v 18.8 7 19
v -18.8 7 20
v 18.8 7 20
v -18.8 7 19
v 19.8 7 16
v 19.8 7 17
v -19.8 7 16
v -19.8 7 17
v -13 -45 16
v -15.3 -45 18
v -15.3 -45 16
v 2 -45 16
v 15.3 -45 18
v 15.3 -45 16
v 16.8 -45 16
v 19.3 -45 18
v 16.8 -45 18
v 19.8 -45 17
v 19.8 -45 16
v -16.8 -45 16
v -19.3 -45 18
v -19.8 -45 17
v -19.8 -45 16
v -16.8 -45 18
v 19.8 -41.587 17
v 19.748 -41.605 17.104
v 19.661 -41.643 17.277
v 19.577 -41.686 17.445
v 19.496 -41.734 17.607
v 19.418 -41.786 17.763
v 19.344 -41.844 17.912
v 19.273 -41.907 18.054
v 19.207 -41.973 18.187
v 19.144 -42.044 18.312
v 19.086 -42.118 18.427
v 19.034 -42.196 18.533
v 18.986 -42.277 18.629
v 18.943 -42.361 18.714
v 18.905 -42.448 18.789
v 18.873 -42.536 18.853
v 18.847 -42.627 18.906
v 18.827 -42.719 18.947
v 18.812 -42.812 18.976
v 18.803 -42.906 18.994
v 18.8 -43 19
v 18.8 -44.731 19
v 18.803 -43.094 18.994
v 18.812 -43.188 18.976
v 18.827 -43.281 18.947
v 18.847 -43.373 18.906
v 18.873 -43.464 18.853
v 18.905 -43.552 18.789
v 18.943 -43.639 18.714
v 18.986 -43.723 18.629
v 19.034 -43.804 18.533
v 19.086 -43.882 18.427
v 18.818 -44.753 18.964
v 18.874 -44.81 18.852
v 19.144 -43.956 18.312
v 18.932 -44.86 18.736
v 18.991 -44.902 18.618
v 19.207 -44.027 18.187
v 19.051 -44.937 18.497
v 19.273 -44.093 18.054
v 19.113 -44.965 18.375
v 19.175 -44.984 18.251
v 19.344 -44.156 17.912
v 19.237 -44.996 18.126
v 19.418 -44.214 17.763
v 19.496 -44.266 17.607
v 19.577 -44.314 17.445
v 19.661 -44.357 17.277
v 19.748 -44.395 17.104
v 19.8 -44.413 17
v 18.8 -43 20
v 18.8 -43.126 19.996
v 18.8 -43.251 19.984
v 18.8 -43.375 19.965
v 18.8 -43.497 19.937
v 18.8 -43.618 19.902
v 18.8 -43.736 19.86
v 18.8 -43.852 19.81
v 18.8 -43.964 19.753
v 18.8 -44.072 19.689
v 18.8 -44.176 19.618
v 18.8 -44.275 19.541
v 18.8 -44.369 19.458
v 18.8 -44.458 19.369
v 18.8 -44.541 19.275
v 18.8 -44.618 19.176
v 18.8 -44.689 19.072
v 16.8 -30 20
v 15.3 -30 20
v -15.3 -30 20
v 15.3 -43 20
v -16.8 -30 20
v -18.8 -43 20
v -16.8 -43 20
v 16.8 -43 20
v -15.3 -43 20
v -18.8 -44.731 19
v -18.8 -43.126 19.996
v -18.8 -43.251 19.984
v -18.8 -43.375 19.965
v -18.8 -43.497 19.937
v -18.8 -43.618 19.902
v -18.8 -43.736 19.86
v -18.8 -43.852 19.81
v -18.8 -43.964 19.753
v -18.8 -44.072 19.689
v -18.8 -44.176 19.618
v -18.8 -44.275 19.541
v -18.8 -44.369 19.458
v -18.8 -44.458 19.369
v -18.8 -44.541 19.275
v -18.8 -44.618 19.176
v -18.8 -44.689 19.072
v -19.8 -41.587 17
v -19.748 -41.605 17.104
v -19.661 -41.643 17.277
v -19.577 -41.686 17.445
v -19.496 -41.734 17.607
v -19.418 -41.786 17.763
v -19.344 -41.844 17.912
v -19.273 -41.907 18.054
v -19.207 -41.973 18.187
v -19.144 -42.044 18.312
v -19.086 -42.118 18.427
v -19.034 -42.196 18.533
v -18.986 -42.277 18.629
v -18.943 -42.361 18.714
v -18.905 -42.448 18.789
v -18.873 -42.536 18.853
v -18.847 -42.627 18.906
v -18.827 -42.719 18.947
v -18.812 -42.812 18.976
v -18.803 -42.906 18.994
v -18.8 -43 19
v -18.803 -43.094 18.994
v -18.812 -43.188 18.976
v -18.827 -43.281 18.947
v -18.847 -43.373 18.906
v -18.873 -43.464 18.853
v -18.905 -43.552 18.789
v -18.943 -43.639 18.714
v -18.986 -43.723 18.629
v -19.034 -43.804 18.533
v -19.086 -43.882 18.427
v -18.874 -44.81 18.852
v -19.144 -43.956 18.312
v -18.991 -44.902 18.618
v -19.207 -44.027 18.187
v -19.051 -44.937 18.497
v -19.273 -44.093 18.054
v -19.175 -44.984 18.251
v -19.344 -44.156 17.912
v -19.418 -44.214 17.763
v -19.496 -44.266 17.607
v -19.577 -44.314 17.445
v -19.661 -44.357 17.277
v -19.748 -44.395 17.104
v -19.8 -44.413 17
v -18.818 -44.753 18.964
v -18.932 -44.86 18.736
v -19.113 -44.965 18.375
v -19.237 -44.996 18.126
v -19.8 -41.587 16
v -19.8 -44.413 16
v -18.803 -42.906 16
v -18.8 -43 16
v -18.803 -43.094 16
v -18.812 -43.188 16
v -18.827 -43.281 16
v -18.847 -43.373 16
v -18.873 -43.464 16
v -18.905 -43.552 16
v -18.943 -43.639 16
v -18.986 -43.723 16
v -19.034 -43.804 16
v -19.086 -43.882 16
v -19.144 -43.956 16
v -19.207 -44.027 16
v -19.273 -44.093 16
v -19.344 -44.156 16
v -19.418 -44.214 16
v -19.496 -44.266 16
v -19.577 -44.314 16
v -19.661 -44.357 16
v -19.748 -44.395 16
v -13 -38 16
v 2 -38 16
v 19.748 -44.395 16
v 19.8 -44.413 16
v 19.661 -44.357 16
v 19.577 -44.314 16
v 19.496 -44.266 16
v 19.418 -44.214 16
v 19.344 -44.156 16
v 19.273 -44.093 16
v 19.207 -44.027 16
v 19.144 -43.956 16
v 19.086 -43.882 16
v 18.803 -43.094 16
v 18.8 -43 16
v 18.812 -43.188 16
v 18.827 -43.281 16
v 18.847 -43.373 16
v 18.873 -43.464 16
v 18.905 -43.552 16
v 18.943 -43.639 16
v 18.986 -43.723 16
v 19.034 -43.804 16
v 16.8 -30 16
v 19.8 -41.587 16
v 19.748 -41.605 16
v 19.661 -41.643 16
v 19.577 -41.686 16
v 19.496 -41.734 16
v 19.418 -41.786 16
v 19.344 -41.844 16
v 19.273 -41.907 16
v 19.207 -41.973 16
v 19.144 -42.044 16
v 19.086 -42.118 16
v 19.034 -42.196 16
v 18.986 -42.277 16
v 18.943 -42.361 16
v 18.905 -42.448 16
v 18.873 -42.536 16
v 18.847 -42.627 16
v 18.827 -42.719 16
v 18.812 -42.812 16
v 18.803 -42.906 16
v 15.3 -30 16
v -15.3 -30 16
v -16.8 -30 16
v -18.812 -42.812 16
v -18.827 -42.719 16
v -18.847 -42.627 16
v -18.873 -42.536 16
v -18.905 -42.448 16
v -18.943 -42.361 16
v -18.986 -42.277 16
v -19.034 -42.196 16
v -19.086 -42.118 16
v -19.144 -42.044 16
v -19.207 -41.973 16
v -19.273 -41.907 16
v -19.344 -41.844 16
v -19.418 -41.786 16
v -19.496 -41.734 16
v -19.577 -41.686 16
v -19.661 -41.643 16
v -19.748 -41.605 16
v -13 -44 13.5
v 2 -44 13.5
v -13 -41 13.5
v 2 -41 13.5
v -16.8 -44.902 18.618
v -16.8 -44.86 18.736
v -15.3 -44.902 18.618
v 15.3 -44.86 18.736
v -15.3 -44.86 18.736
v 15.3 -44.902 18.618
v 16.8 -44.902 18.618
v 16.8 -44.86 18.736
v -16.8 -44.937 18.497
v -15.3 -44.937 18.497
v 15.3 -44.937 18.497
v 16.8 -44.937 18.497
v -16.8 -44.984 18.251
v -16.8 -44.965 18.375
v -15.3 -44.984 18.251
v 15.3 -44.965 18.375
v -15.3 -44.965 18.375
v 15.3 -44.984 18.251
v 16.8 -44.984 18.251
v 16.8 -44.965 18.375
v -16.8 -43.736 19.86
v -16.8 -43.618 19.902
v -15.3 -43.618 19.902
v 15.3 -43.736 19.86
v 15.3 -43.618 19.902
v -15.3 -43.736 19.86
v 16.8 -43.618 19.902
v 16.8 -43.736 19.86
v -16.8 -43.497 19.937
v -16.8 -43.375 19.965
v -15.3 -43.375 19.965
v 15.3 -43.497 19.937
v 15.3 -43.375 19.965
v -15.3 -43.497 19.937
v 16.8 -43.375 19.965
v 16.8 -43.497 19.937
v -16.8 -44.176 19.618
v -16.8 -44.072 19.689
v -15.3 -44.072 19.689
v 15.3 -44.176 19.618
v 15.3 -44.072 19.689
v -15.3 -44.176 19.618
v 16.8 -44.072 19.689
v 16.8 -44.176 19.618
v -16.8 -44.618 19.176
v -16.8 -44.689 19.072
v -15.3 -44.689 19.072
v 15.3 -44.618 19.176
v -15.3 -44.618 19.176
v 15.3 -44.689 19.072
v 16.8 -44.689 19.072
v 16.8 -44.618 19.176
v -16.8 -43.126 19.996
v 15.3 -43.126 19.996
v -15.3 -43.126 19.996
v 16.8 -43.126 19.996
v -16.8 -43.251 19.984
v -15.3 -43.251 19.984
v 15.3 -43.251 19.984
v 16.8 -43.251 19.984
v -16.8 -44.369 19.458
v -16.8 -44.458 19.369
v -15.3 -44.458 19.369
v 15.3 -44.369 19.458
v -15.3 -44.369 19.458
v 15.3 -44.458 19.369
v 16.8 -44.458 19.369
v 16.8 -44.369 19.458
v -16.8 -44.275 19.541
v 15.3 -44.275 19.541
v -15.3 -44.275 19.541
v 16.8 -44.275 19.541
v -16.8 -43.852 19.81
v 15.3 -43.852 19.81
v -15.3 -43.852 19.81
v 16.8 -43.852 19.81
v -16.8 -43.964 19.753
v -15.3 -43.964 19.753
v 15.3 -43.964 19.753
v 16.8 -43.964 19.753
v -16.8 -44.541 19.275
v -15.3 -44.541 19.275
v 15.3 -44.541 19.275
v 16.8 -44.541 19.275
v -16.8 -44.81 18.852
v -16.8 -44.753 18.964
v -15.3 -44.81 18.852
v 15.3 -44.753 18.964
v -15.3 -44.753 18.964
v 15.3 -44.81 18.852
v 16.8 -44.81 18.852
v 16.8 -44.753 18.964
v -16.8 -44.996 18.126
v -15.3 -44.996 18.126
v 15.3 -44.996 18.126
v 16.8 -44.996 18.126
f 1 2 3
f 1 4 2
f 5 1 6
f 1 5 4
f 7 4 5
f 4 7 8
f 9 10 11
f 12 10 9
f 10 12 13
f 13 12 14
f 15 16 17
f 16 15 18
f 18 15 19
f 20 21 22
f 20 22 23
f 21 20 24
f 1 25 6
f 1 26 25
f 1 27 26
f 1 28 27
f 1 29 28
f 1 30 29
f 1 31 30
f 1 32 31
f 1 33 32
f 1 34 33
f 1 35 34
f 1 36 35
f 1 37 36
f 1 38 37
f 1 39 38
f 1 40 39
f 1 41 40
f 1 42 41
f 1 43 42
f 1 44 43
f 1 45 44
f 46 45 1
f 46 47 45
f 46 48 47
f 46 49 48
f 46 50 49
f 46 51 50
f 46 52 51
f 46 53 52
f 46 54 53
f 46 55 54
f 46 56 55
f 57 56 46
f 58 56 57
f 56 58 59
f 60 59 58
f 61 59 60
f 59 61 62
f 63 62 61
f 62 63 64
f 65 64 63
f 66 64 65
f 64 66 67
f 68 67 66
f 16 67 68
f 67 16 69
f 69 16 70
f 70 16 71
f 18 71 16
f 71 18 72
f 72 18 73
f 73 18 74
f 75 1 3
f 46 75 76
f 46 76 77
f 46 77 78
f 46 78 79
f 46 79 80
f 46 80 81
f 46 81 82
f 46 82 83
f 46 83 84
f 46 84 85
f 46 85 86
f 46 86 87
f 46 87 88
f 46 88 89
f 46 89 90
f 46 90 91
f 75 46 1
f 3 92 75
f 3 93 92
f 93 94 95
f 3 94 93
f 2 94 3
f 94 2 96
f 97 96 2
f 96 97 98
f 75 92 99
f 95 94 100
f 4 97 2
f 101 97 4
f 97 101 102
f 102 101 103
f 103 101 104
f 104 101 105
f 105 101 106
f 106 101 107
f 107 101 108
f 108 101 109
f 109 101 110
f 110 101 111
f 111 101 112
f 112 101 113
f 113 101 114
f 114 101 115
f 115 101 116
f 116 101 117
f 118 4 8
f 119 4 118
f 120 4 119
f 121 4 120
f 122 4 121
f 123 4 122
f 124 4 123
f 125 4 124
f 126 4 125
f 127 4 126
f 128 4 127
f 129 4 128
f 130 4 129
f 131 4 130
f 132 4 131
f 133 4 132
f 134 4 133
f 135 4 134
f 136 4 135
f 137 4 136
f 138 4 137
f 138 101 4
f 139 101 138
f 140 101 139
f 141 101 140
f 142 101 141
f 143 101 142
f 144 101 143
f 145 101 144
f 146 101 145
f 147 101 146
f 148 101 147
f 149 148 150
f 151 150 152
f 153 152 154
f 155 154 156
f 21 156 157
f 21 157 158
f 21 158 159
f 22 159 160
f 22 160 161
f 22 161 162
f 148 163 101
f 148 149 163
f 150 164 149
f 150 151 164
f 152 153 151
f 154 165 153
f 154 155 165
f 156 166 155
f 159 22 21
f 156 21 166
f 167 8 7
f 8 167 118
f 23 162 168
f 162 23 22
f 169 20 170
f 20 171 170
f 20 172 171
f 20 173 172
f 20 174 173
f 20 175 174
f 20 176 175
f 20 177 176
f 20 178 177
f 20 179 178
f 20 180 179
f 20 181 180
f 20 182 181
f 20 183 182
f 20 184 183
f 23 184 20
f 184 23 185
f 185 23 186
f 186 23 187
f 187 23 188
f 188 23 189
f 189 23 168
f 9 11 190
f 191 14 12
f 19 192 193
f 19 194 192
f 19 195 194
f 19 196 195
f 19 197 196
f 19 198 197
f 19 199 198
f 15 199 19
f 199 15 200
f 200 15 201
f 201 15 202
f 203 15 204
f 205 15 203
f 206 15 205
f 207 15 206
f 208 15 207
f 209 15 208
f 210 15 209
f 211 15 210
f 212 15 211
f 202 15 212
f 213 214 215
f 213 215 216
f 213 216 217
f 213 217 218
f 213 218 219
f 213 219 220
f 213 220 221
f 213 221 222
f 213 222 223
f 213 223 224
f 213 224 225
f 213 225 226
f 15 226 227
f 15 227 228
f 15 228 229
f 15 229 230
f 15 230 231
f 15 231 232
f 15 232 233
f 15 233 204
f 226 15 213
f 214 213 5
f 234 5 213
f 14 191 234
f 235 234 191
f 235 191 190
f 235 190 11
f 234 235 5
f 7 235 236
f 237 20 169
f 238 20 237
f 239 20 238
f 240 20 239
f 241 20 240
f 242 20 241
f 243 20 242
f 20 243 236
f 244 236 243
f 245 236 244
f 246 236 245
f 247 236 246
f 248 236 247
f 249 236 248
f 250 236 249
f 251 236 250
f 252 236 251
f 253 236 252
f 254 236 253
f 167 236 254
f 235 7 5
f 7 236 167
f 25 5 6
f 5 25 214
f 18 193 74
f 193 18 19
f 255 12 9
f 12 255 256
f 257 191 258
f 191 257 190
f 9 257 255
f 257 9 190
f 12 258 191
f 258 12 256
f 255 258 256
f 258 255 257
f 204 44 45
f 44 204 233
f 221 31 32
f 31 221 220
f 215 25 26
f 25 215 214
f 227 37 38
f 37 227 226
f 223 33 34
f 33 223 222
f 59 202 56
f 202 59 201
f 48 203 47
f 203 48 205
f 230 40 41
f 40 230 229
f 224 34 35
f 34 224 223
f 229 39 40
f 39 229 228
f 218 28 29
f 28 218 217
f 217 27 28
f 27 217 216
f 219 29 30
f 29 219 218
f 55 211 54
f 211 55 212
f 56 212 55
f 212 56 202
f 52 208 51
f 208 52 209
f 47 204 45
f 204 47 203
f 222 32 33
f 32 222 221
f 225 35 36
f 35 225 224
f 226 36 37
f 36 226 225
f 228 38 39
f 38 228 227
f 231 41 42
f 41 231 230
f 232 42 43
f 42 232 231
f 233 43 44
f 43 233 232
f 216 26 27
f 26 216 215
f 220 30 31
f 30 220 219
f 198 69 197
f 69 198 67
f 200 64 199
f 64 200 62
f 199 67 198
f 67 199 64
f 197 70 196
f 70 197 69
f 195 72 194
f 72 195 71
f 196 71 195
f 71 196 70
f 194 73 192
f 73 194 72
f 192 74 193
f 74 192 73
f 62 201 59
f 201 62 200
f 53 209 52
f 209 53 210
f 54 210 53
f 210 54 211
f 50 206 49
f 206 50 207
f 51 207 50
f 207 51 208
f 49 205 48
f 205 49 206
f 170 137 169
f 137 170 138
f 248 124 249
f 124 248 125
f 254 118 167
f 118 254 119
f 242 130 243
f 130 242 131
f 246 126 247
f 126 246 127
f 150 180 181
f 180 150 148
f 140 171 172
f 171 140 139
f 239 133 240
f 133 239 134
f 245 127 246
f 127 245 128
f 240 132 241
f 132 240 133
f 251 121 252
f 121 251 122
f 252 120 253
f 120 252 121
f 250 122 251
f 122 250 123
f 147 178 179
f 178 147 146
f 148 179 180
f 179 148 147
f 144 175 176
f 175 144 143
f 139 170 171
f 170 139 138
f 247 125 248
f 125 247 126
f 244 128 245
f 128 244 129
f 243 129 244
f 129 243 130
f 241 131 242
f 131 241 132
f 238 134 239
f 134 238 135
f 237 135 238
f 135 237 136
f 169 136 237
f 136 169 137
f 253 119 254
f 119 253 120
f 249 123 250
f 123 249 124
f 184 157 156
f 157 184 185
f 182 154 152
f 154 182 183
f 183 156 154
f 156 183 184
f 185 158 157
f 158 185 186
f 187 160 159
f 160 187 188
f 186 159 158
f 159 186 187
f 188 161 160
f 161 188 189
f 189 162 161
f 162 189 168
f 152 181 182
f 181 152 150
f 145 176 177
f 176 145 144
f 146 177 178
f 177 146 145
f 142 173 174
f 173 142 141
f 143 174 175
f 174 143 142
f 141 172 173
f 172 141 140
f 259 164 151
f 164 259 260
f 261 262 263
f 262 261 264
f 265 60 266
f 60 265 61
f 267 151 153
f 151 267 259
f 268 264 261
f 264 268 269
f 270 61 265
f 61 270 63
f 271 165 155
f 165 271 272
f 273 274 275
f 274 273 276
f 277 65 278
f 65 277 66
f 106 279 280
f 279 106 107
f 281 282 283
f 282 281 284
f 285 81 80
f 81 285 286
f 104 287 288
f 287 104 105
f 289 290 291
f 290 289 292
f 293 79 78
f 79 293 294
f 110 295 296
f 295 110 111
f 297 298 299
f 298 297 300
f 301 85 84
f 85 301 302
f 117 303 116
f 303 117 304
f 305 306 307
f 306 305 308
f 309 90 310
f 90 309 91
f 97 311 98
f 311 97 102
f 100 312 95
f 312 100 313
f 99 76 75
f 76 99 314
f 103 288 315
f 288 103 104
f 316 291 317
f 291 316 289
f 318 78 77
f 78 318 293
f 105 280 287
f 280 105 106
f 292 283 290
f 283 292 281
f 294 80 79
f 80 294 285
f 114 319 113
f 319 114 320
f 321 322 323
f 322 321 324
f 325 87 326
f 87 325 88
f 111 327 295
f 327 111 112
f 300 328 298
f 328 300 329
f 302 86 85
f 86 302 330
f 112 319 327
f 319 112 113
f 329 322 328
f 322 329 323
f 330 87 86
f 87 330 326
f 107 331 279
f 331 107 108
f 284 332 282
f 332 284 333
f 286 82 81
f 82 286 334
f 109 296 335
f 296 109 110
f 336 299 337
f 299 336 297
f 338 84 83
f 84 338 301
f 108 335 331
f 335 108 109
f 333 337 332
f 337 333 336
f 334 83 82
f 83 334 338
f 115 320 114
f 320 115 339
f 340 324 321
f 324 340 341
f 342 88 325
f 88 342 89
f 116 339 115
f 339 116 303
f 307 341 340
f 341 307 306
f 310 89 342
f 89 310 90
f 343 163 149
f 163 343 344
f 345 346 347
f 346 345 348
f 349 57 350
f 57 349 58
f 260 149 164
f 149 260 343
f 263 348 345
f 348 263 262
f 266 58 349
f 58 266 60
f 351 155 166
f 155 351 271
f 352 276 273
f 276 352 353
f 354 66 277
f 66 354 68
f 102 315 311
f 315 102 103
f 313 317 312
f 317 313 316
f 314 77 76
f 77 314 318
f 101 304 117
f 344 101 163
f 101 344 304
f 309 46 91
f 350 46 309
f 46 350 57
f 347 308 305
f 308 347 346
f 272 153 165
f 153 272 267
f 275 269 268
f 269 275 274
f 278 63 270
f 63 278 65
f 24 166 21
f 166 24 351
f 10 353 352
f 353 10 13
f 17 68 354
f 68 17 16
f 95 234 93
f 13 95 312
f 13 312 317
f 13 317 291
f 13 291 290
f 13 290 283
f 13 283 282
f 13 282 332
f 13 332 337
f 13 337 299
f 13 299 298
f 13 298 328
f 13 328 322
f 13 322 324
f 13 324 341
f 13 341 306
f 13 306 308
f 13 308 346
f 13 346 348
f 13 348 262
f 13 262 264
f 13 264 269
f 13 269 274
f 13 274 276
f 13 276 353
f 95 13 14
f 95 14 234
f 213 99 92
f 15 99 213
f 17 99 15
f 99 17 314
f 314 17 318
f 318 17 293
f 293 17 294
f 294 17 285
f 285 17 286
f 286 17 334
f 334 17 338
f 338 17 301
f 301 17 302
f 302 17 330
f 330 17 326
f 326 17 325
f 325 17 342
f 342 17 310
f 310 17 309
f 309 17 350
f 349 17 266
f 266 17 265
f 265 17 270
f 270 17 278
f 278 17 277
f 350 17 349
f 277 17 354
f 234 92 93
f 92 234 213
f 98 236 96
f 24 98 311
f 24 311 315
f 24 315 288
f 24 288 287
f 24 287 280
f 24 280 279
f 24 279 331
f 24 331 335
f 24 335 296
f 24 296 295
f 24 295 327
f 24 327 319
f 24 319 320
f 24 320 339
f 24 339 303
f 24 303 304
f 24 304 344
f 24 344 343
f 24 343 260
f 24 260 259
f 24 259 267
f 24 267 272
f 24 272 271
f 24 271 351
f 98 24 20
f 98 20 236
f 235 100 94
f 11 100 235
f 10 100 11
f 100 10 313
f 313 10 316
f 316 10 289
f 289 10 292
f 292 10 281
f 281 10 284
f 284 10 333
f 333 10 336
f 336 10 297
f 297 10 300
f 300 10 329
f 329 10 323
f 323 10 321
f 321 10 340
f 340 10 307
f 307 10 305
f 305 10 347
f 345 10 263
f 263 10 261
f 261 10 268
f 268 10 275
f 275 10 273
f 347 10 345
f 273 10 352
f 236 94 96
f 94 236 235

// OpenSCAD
//OpenSCAD source code
//https://openscad.org

//import("C:/SEM_Simonyi/SEM_ProjektoroSCH-main/Doboz/doboz_v5_also.scad");

$fn=100;

//Mennyivel legyen keskenyebb a nyomtatott felső darab az alsóban neki kialakított helynél (x2, azaz mindkét oldalból levon ennyit)? Ha nem fér be, feszül, akkor növeld az értéket.
$oldalso_kisebbites=0.7;

$lekerekites=2;
$belso_hossz=86;
$belso_szel=40;
$kulso_mag=20;
$anyagvastagsag_oldalfal=2;
$anyagvastagsag_alja=3;
$henger_sugar=14;
$henger_luk=3;
$felso_resz_hossz=50; //+anyagvastagsag_oldalfal

translate([0,-$belso_hossz/2-$anyagvastagsag_oldalfal,16])
color("#b0b0b0",0.8)
render(){
//TODO: hosszúság rövidebbre vétele, hogy biztosan bepattanjon

difference(){
	//trapéz-szerű alap:
	union(){
		translate([0,$felso_resz_hossz+$anyagvastagsag_oldalfal,0])
			rotate([90,0,0])
				linear_extrude($felso_resz_hossz+$anyagvastagsag_oldalfal)
				polygon([ 
					[-$belso_szel/2-0.5+$oldalso_kisebbites,0],
					[+$belso_szel/2+0.5-$oldalso_kisebbites,0],
					[+$belso_szel/2+0.5-$oldalso_kisebbites,1],
					[+$belso_szel/2-0.5-$oldalso_kisebbites,3],
					[+$belso_szel/2-0.5-$oldalso_kisebbites,4],
					[-$belso_szel/2+0.5+$oldalso_kisebbites,4],
					[-$belso_szel/2+0.5+$oldalso_kisebbites,3],
					[-$belso_szel/2-0.5+$oldalso_kisebbites,1] ]);
		//csatlakozókat leszorító kiálló rész az alján
		translate([-13,0,0])
			rotate([90,0,0])
			rotate([0,90,0])
				linear_extrude(15)
				polygon([ 
					[0,0],
					[1,-2.5],
					[4,-2.5],
					[7,0] ]);
	}

	//fél henger pöckök a rögzítéshez:
	translate([$belso_szel/2+$anyagvastagsag_oldalfal/2-$oldalso_kisebbites,2,1.5])
		difference(){
			cylinder(r=1.5, h=4, center=true);
			translate([0,-5,-5])cube([10,10,10]);
		}
	mirror([1,0,0])
	translate([$belso_szel/2+$anyagvastagsag_oldalfal/2-$oldalso_kisebbites,2,1.5])
		difference(){
			cylinder(r=1.5, h=4, center=true);
			translate([0,-5,-5])cube([10,10,10]);
		}
	//bevágások a hajlékonysághoz a rögzítésnél
	translate([0.40*$belso_szel-$oldalso_kisebbites,0,0])
		cube([1.5,15,4]);
	mirror([1,0,0])
	translate([0.40*$belso_szel-$oldalso_kisebbites,0,0])
		cube([1.5,15,4]);
	//felső lekerekítés a elejénél:
	translate([0,$lekerekites/2,4-$lekerekites/2])
		rotate([0,180,-90])
			el_lekerekites_negativ($lekerekites,$belso_szel+2*$anyagvastagsag_oldalfal);
}


}//render

module sarok_legombolyites_negativ(r,center=true){
	if(center==true){
		translate([r/2,r/2,r/2])
		rotate([0,90,180])
			difference(){
				cube(r);
				sphere(r);
			}
	}else if(center==false){
		rotate([0,90,180])
			difference(){
				cube(r);
				sphere(r);
			}
	}
}
module el_lekerekites_negativ(r,hossz,center=true){
	if(center==true){
	translate([r/2,-hossz/2,r/2])
		rotate([0,180,0])
			difference(){
			cube([r,hossz,r]);
			translate([0,-0.5,0])
				rotate([-90,0,0])
					cylinder(hossz+1, r, r);
			}
	}else if(center==false){
	translate([0,0,0])
		rotate([0,180,0])
			difference(){
			cube([r,hossz,r]);
			translate([0,-0.5,0])
				rotate([-90,0,0])
					cylinder(hossz+1, r, r);
			}
	}
}
